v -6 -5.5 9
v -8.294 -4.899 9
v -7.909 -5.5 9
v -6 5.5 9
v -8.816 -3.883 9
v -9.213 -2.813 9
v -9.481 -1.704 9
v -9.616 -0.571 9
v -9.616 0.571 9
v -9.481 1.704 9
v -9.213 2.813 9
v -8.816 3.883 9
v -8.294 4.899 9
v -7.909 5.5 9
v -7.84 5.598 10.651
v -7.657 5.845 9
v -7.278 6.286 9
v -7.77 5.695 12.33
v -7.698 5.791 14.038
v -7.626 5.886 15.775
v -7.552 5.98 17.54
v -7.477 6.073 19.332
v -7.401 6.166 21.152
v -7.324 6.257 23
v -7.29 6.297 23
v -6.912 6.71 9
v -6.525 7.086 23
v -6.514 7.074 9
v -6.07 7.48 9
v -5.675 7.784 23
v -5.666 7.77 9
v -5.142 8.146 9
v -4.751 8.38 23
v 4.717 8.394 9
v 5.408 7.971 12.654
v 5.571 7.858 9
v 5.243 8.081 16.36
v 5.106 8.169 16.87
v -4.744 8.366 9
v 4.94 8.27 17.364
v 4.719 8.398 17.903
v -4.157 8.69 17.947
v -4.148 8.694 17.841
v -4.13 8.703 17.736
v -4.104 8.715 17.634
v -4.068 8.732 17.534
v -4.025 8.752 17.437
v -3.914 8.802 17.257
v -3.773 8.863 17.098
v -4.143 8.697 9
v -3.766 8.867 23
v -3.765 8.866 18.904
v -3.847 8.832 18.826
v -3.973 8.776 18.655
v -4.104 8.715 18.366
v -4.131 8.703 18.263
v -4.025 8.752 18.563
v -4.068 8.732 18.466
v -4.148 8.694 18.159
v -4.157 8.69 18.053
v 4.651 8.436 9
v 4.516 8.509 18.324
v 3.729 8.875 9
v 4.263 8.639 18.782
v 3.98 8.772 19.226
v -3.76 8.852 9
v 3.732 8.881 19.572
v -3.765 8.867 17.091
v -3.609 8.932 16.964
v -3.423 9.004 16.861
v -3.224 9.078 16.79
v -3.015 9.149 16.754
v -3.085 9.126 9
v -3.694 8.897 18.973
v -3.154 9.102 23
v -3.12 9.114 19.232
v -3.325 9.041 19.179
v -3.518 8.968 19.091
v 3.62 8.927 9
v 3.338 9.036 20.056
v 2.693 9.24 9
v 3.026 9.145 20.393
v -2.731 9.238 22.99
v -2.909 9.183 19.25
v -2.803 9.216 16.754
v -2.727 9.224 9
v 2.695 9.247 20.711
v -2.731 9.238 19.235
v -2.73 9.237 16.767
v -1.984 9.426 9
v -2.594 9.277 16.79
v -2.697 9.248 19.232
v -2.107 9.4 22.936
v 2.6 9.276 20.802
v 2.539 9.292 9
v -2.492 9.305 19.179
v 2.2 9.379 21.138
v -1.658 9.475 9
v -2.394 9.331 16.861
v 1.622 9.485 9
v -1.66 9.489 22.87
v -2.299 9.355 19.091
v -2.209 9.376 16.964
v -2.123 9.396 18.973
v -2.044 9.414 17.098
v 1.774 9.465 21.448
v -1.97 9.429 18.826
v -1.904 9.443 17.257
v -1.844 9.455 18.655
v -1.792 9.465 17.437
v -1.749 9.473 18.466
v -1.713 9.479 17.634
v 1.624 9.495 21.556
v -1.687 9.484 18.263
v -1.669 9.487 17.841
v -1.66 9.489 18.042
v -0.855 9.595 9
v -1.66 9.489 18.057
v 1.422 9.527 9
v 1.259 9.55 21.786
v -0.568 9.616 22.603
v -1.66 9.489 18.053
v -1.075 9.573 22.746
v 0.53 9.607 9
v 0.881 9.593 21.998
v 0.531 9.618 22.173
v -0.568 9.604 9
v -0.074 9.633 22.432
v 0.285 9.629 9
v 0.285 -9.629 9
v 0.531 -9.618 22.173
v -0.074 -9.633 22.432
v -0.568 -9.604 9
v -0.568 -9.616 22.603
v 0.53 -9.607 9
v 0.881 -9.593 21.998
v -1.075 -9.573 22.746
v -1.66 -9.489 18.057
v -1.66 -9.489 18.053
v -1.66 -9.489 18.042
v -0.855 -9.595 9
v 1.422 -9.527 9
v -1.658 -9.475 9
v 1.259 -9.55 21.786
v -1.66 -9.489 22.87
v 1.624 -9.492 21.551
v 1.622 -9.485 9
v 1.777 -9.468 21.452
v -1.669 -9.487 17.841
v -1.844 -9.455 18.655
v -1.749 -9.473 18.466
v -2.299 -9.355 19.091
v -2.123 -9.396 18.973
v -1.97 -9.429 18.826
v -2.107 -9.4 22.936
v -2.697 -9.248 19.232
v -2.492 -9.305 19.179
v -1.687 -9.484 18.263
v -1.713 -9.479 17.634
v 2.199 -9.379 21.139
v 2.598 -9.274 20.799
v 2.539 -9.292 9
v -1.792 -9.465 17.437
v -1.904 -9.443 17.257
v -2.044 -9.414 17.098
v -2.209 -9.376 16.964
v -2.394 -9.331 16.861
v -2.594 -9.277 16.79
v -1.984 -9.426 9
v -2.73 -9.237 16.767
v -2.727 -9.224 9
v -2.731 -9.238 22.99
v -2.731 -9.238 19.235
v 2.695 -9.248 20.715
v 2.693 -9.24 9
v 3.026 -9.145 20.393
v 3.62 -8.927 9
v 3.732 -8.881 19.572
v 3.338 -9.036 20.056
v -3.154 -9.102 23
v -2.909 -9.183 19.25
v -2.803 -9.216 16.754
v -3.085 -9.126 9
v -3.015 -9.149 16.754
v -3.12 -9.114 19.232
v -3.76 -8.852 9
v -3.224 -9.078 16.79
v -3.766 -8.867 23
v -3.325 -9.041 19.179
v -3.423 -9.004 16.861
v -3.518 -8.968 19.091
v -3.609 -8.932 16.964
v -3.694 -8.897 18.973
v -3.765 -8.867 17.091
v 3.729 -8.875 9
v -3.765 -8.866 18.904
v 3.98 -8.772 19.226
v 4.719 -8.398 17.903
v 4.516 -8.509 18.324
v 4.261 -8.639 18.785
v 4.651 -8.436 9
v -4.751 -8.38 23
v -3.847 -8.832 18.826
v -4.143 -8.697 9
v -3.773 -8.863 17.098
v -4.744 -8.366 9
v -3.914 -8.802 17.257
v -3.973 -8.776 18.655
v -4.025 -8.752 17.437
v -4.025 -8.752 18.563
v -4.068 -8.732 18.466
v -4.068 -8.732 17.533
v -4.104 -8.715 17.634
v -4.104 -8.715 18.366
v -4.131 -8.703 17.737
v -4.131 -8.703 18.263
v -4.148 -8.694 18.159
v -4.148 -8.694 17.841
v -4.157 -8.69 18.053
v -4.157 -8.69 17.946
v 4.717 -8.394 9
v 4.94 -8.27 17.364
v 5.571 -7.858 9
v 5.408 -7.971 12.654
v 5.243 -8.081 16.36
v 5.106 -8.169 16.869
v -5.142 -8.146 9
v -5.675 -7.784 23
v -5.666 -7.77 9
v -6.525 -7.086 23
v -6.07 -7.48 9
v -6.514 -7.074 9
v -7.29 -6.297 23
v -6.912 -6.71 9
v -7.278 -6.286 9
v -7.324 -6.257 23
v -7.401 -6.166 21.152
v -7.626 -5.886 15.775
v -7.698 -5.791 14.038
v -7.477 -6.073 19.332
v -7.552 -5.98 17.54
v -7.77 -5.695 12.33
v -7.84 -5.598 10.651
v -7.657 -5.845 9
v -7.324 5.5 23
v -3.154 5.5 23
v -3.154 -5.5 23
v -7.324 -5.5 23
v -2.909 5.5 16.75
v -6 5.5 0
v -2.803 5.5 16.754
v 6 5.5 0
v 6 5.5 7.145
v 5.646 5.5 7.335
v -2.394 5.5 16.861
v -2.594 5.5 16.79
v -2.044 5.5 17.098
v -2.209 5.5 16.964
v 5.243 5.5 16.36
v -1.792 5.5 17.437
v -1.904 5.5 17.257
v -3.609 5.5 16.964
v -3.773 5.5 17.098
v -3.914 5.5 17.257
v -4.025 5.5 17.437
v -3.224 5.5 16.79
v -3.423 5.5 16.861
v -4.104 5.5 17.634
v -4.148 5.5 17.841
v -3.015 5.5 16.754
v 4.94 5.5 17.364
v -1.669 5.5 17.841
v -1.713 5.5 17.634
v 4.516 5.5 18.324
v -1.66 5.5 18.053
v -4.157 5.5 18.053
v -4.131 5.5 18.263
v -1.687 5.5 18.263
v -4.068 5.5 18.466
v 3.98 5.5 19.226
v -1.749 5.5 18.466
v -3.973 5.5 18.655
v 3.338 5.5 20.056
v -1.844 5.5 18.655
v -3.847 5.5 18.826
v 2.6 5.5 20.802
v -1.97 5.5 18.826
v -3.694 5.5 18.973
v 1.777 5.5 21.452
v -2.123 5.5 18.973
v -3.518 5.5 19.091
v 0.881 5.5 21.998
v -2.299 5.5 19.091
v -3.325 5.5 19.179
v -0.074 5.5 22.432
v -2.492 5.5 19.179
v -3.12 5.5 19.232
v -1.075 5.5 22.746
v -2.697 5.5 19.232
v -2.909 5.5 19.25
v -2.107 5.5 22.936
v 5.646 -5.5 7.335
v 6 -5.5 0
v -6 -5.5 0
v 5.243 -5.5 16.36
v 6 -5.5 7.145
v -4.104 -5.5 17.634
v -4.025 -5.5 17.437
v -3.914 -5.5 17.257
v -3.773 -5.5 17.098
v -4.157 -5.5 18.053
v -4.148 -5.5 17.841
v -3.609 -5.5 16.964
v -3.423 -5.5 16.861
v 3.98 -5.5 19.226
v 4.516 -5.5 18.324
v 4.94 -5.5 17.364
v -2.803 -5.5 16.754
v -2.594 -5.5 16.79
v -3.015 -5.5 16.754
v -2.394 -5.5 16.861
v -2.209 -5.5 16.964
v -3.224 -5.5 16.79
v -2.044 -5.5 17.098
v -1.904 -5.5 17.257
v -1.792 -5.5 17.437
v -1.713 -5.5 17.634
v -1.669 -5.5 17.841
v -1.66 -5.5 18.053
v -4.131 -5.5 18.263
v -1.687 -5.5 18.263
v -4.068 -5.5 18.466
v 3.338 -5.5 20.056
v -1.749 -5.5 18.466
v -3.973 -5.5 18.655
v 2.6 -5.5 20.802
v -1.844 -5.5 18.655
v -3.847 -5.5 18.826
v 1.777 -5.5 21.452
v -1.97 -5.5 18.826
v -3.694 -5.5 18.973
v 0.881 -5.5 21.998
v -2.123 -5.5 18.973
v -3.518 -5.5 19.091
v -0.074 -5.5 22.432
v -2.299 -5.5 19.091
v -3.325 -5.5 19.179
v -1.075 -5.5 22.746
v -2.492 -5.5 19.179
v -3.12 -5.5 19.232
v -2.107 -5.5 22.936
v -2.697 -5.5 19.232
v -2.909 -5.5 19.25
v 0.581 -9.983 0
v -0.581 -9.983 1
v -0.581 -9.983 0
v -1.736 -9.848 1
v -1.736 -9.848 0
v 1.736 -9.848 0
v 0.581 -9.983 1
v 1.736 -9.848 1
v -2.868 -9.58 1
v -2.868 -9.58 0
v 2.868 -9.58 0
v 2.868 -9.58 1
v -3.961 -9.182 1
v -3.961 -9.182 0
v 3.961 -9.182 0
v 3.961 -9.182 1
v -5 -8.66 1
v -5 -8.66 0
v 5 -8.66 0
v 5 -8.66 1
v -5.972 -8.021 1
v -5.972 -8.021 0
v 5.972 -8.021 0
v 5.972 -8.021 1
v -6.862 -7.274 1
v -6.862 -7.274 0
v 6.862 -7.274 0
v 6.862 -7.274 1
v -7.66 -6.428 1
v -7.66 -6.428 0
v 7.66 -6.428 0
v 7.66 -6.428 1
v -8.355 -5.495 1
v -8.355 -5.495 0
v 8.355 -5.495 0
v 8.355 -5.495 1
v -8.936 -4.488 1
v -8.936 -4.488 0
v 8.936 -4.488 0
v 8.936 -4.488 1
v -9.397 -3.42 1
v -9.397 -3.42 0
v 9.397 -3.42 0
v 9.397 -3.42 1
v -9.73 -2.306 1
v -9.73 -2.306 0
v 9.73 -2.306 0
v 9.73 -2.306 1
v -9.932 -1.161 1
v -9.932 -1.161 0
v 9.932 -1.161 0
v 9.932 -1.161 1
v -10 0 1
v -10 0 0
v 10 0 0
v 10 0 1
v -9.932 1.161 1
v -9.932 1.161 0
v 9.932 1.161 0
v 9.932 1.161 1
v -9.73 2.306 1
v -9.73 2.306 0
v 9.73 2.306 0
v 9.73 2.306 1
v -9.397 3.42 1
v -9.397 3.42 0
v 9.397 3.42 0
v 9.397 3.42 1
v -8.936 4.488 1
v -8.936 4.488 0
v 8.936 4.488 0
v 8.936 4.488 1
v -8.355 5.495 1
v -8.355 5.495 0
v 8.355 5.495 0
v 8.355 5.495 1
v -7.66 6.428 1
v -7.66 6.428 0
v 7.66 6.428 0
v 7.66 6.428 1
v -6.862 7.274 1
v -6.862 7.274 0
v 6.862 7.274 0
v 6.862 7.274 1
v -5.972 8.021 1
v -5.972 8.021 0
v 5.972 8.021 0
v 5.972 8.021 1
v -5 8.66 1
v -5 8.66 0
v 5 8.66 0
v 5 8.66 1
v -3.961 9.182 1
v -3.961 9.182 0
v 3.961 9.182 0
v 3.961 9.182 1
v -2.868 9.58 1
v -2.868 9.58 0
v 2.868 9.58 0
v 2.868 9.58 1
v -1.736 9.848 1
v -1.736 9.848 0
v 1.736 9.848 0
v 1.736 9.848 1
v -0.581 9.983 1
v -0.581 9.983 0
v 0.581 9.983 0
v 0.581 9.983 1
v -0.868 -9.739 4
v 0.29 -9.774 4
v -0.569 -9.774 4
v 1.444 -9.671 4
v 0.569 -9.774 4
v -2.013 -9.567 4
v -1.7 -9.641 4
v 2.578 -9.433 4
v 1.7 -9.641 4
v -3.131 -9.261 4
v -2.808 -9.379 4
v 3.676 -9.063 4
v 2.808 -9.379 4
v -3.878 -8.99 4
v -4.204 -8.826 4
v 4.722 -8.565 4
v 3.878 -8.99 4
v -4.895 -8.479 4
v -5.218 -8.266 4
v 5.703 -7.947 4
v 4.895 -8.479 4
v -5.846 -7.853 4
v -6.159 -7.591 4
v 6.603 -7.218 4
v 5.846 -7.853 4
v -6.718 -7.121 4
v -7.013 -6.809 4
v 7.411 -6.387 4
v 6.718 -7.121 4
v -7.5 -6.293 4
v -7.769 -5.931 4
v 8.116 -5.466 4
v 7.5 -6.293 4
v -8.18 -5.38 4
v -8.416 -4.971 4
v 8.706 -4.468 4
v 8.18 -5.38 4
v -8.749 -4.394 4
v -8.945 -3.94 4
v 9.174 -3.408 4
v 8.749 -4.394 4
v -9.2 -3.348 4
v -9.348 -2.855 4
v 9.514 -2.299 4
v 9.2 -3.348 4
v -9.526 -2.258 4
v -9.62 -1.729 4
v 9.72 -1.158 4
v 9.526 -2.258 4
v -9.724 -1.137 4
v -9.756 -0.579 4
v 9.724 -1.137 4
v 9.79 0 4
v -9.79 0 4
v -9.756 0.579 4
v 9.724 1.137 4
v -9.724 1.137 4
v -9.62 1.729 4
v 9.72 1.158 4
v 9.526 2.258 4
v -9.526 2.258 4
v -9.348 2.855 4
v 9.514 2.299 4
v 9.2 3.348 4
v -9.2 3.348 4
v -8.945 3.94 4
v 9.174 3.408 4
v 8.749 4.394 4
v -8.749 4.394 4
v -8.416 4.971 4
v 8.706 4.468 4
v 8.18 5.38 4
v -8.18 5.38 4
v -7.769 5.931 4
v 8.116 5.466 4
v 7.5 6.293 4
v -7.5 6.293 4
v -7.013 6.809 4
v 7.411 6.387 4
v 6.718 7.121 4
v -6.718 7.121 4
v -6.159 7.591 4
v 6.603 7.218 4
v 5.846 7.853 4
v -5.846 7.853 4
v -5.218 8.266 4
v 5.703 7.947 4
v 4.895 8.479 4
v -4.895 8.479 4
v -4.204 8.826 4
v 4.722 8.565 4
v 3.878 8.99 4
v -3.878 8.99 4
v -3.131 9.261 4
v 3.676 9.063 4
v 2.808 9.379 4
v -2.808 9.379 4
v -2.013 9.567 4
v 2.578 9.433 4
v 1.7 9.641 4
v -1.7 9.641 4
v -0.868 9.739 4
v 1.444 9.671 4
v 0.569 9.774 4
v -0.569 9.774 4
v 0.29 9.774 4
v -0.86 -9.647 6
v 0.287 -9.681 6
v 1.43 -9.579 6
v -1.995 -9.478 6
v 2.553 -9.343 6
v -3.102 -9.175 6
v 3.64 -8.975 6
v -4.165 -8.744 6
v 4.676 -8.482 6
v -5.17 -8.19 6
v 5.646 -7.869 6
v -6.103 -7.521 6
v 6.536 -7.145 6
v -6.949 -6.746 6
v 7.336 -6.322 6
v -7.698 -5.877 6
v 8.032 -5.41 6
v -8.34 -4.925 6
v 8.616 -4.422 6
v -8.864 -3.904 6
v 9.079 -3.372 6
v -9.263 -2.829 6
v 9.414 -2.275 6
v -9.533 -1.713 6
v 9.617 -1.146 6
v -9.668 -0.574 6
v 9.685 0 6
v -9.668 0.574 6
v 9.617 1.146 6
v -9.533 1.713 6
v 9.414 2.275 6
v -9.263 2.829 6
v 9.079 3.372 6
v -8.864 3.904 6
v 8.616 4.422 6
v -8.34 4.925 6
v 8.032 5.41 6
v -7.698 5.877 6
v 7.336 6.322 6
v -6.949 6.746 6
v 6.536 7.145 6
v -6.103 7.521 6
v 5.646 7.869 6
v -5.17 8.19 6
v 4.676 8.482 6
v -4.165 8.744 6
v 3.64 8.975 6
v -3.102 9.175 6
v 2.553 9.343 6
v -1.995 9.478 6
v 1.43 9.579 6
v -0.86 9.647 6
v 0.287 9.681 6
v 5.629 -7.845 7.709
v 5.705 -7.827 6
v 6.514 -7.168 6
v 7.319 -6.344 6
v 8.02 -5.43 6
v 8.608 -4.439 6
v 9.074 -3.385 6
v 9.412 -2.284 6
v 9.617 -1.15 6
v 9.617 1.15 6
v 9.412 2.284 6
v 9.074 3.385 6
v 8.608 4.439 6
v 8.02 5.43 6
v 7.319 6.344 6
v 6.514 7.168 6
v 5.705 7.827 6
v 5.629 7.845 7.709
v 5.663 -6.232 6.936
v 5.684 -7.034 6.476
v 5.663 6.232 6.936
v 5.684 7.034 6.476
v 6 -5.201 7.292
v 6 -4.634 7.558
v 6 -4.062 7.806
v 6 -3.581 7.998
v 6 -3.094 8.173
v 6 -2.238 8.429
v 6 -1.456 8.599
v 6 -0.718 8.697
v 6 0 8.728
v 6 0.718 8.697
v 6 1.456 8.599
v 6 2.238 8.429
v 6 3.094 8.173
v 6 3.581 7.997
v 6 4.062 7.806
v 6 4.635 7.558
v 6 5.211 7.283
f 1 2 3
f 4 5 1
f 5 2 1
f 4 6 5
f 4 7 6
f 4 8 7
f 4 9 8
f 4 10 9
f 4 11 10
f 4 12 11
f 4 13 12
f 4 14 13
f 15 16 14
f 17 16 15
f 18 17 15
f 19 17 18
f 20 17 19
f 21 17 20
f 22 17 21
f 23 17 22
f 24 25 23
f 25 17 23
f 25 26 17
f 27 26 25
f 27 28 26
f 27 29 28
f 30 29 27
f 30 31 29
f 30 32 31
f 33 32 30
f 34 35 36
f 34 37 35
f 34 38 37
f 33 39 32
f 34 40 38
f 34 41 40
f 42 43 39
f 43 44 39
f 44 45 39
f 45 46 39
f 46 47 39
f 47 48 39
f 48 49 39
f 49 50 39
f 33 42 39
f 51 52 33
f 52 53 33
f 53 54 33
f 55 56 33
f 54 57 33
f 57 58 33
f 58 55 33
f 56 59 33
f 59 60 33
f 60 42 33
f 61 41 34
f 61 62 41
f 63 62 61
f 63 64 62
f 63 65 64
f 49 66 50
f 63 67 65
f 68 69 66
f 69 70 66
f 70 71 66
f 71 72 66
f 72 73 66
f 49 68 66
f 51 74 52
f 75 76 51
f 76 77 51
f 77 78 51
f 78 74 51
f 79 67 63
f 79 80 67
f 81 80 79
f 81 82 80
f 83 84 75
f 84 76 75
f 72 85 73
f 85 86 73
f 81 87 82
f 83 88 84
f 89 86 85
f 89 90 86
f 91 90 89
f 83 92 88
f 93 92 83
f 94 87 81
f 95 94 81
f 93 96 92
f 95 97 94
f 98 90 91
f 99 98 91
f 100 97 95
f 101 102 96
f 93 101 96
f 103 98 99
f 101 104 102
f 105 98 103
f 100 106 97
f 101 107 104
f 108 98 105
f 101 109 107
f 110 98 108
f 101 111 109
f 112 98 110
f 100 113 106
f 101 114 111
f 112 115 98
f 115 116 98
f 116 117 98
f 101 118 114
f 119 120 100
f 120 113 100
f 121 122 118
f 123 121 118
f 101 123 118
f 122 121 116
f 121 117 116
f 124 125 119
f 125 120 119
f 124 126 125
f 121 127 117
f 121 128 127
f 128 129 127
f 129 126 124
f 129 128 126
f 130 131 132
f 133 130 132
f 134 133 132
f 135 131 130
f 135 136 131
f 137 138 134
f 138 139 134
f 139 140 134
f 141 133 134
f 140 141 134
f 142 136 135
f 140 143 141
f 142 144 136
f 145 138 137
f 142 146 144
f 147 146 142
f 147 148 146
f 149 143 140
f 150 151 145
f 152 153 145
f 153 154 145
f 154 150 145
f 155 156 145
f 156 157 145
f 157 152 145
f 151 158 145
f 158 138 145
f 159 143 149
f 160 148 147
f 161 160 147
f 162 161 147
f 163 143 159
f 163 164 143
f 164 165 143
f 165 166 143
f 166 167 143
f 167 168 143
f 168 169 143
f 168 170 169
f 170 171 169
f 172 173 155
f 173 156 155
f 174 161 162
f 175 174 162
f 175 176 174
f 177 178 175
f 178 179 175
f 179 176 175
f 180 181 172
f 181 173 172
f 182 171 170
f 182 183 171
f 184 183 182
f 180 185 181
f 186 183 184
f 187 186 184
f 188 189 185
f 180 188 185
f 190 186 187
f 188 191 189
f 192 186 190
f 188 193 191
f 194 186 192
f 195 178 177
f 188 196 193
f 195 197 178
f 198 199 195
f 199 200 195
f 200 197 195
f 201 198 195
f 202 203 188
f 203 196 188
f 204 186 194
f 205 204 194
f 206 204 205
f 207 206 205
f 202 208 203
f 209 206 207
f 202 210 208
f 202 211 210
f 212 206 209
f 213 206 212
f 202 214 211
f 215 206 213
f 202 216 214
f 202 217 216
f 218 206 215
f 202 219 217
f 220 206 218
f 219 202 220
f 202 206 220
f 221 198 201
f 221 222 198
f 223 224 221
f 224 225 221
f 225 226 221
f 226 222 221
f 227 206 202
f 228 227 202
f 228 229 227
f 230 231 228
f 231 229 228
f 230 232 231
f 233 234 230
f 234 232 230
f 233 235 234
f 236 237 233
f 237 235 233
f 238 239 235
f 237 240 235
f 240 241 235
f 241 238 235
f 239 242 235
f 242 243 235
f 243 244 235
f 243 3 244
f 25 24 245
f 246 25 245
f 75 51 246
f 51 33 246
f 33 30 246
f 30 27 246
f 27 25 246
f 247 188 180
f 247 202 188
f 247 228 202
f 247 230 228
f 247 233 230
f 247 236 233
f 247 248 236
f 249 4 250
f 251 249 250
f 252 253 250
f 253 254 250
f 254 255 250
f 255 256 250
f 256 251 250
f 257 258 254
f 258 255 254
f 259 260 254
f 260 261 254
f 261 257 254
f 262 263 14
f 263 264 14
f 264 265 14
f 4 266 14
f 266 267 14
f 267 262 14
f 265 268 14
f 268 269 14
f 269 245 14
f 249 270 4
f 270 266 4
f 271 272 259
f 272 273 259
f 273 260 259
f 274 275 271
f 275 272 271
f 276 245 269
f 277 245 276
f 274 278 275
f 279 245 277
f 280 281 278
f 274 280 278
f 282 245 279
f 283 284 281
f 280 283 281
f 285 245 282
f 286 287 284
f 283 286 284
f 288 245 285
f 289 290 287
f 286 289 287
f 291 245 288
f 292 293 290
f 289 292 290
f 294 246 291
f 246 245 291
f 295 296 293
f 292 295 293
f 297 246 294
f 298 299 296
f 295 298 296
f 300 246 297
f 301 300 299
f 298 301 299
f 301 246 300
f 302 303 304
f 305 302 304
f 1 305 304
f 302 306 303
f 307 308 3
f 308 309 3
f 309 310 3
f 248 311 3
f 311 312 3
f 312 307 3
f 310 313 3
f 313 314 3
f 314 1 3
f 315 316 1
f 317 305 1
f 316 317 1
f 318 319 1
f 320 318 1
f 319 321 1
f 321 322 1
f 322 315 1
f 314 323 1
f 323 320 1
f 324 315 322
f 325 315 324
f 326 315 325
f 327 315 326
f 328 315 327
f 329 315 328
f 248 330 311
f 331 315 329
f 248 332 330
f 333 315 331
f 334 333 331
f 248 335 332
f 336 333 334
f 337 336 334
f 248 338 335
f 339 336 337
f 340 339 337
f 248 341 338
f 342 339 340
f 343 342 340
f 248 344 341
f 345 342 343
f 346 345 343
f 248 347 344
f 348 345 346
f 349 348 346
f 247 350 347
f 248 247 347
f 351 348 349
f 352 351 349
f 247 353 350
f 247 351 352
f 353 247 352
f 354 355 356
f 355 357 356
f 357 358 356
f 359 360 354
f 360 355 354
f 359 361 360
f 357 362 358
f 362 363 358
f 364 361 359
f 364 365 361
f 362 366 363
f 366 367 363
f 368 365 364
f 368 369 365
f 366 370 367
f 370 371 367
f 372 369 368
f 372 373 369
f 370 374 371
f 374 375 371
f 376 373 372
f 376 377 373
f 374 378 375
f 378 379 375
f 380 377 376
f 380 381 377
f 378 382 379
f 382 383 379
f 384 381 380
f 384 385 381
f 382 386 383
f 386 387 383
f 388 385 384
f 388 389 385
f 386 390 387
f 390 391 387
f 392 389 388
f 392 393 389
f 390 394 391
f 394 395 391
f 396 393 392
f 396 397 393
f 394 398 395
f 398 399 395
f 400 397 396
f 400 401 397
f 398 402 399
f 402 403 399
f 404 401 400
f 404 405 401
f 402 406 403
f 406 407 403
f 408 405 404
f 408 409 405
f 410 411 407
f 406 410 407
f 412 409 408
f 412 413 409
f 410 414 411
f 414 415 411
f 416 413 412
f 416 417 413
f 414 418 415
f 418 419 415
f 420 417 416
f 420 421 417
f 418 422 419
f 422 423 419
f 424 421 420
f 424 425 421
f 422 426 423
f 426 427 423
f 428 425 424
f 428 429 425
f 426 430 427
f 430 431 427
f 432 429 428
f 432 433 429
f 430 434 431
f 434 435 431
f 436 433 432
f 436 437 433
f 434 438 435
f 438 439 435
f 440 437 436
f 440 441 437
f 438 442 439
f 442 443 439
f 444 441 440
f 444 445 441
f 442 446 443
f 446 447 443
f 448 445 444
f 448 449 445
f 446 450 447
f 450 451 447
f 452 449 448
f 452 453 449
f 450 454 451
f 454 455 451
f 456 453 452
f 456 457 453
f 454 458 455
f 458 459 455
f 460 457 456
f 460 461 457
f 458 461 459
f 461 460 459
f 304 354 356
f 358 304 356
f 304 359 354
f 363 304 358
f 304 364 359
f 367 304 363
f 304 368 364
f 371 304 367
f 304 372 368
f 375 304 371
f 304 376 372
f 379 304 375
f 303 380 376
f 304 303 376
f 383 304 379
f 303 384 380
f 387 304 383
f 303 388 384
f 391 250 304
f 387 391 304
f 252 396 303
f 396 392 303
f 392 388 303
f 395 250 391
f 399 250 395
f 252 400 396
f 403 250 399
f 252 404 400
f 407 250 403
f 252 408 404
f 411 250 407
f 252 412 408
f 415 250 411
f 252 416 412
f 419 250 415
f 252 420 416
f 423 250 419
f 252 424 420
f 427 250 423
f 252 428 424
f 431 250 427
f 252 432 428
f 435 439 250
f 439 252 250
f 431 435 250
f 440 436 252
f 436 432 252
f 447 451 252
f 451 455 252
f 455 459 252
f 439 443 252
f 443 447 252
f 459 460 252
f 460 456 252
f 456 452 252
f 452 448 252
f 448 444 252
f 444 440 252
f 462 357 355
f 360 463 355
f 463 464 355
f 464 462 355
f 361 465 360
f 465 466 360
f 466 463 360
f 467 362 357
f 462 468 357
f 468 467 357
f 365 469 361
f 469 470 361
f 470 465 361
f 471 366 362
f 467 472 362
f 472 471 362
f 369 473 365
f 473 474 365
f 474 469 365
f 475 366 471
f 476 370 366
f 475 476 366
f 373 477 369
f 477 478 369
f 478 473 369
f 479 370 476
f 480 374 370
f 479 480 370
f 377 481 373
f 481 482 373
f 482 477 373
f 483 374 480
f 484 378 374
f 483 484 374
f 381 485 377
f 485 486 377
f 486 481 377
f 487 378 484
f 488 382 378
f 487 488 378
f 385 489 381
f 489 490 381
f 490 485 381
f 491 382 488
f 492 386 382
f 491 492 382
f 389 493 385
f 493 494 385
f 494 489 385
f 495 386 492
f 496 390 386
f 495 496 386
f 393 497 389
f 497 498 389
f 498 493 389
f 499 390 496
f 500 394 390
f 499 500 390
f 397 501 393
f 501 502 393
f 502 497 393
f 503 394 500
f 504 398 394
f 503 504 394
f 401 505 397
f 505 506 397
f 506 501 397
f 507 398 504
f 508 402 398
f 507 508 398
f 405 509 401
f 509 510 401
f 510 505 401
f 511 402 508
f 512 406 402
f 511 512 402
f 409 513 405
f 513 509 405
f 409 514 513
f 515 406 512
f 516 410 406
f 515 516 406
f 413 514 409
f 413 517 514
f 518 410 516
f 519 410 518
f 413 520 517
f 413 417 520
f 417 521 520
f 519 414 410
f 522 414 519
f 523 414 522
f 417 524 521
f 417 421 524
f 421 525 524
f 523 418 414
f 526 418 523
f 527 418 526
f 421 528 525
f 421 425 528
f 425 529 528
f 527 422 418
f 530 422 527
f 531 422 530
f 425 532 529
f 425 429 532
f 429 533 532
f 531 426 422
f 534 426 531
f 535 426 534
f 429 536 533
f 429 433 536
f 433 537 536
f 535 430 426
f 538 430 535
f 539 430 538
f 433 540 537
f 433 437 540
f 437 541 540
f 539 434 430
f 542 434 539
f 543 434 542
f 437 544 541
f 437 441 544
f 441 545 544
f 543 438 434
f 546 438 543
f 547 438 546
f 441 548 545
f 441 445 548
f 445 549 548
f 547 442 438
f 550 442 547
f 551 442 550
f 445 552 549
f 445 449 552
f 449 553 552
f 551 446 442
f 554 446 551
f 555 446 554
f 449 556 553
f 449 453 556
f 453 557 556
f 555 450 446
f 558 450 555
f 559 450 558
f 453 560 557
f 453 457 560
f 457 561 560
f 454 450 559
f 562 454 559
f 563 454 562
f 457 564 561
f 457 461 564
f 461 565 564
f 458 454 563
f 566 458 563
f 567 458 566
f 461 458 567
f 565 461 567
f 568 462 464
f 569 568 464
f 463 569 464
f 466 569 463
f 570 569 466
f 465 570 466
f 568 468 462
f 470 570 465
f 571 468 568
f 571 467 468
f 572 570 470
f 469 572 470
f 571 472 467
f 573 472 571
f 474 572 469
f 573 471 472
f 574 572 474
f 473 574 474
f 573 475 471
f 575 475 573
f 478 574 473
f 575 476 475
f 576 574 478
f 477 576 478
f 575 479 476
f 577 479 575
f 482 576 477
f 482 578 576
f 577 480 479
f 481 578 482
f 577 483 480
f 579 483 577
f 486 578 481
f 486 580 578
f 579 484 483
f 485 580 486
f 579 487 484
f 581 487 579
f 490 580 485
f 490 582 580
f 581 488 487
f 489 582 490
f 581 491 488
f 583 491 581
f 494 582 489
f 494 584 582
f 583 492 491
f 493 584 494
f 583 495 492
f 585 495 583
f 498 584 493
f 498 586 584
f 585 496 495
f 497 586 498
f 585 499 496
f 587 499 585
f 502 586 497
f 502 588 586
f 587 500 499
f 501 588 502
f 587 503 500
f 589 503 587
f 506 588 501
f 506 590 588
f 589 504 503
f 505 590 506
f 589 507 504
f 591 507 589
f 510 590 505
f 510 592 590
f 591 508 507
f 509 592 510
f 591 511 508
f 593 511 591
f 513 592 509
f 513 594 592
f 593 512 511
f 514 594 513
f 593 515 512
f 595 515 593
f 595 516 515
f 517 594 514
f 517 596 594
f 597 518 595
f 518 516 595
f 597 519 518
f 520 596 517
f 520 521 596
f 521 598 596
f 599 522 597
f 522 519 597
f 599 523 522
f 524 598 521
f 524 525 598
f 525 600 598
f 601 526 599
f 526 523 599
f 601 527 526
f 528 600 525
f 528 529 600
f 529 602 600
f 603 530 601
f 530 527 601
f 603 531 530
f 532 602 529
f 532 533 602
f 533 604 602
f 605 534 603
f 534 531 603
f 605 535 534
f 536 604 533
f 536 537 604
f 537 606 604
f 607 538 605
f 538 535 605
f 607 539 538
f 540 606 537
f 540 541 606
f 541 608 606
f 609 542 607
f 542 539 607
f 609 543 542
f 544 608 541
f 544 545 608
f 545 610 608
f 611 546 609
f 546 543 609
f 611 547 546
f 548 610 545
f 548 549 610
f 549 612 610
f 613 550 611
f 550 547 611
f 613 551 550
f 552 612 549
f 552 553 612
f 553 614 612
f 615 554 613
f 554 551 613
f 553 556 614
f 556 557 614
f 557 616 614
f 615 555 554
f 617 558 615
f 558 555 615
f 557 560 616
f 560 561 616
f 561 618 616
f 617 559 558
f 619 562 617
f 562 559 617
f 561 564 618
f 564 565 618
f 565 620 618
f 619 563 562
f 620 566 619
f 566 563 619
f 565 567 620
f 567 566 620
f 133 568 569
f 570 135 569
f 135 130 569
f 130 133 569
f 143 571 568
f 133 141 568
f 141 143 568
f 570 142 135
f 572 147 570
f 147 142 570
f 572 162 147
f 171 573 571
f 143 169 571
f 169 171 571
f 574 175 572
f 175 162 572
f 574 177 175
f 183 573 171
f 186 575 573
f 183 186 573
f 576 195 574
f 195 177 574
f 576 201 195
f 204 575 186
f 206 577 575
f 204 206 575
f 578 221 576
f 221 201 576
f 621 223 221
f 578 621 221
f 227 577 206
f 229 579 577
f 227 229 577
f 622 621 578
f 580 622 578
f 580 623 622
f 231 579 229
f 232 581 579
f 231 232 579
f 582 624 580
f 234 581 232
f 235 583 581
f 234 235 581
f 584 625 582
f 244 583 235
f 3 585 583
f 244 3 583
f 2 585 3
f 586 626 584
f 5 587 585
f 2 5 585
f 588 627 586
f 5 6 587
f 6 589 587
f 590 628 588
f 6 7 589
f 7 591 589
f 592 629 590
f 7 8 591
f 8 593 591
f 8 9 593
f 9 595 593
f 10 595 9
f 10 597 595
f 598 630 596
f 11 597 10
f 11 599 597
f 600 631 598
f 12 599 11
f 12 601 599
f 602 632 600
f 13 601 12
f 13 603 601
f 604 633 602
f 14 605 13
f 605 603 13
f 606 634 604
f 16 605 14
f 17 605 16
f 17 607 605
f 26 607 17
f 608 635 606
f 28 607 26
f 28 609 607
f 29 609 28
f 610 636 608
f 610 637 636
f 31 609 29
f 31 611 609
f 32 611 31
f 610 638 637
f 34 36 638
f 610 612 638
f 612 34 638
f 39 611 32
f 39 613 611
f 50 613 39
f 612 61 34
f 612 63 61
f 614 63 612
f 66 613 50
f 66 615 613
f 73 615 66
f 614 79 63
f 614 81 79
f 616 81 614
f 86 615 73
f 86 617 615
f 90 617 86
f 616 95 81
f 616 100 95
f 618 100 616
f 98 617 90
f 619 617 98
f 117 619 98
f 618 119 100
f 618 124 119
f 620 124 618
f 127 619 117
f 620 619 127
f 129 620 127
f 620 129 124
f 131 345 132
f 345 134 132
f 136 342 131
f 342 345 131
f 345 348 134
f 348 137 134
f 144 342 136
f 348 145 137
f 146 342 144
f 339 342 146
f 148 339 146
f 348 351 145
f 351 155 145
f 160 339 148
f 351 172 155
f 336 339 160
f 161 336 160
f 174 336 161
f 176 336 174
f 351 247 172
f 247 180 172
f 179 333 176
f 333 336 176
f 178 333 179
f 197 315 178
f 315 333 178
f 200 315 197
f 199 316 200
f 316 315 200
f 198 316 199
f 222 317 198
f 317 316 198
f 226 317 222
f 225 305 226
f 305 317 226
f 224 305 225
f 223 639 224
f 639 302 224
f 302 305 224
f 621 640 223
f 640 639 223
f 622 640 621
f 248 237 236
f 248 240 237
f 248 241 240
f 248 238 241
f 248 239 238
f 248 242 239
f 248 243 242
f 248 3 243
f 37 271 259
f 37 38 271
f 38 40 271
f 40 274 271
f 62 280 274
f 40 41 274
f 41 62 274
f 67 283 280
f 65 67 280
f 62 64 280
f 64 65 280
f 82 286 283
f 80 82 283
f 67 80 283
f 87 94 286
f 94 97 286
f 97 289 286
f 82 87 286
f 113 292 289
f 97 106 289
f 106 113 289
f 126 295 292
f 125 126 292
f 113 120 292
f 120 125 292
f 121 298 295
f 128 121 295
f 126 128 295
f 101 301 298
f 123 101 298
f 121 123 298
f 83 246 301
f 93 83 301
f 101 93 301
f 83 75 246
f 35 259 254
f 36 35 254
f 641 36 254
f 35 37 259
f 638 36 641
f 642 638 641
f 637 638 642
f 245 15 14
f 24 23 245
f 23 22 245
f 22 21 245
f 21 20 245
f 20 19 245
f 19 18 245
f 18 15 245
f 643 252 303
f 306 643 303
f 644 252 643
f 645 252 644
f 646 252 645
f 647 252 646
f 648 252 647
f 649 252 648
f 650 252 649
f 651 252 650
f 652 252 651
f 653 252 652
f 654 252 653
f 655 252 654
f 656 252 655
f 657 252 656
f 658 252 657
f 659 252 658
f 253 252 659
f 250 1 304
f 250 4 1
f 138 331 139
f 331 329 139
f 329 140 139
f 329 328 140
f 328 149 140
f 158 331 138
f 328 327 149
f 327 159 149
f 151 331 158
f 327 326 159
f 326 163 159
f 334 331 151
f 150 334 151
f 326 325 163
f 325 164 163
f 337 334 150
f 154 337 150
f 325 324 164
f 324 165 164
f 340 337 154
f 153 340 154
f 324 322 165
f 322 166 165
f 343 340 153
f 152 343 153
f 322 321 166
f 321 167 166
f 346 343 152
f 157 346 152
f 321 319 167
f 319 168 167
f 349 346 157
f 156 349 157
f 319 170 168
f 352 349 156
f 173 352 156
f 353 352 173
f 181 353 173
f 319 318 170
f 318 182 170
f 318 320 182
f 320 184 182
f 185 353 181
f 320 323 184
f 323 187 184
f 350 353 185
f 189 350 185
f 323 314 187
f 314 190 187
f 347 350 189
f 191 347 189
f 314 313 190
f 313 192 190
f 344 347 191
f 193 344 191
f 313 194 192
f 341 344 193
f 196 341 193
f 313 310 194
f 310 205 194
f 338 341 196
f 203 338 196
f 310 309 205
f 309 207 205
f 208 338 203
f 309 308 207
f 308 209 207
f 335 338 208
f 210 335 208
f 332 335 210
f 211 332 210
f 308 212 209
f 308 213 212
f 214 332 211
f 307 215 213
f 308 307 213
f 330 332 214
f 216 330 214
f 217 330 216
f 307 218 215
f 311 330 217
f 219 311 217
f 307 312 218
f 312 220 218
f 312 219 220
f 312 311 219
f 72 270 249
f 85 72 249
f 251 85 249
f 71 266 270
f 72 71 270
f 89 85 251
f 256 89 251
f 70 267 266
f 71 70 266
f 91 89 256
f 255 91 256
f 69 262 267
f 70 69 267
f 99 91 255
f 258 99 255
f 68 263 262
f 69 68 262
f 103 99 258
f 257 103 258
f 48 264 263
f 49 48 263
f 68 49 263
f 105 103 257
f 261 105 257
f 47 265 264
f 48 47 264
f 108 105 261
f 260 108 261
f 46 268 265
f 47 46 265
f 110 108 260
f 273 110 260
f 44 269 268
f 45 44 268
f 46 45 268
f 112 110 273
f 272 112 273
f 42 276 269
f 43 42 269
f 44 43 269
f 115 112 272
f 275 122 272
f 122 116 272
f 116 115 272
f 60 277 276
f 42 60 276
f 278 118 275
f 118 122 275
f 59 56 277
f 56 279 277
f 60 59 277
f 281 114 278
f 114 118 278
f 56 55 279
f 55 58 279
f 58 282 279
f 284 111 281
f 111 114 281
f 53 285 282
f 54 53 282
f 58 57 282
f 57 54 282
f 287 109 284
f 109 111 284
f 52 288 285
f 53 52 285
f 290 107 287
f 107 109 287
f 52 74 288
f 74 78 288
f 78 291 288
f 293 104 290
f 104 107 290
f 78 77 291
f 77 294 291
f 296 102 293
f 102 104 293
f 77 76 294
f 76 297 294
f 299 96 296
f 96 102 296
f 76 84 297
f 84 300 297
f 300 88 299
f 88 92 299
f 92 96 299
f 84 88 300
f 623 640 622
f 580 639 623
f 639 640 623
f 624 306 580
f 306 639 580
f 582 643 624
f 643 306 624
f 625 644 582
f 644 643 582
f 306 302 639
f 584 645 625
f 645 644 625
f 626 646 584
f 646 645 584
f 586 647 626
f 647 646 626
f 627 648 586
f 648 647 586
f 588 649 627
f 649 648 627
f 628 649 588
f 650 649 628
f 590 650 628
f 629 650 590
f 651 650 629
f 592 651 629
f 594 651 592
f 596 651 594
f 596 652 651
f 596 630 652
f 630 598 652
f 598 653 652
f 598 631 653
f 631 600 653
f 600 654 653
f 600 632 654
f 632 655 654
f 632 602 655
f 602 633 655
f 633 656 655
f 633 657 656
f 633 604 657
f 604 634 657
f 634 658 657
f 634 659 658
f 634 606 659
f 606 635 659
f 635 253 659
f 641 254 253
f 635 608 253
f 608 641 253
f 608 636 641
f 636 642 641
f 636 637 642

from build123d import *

# Parameters (mm, degrees)
SKETCH1_R               = 10
BOSS_EXTRUDE1_DEPTH     = 1
SKETCH2_R               = 10
BOSS_EXTRUDE2_DEPTH     = 3
BOSS_EXTRUDE2_TAPER     = 4
SKETCH3_R               = 9.790219564
BOSS_EXTRUDE3_DEPTH     = 2
BOSS_EXTRUDE3_TAPER     = 3
SKETCH4_R               = 9.685404006
BOSS_EXTRUDE4_DEPTH     = 3
BOSS_EXTRUDE4_TAPER     = 1
SKETCH5_R               = 9.633038811
BOSS_EXTRUDE5_DEPTH     = 14
CUT_EXTRUDE1_DEPTH      = 13
CUT_EXTRUDE1_DEPTH_BACK = 13
SKETCH6_W               = 17.15
SKETCH6_H               = 11
CUT_EXTRUDE2_DEPTH      = 13
CUT_EXTRUDE2_DEPTH_BACK = 13
SKETCH8_W               = 12
SKETCH8_H               = 11
CUT_EXTRUDE3_DEPTH      = 13
SKETCH9_R               = 1.25
CUT_EXTRUDE4_DEPTH      = 11
CHAMFER1_SIZE           = 4
CHAMFER1_SIZE_2         = 3


with BuildPart() as part:
    # Sketch1 → Boss-Extrude1 (new body)
    with BuildSketch(Plane.XY):
        Circle(SKETCH1_R)
    extrude(amount=BOSS_EXTRUDE1_DEPTH)

    # Sketch2 → Boss-Extrude2 (add)
    with BuildSketch(Plane.XY.offset(1)):
        Circle(SKETCH2_R)
    extrude(amount=BOSS_EXTRUDE2_DEPTH, taper=BOSS_EXTRUDE2_TAPER)

    # Sketch3 → Boss-Extrude3 (add)
    with BuildSketch(Plane.XY.offset(4)):
        Circle(SKETCH3_R)
    extrude(amount=BOSS_EXTRUDE3_DEPTH, taper=BOSS_EXTRUDE3_TAPER)

    # Sketch4 → Boss-Extrude4 (add)
    with BuildSketch(Plane.XY.offset(6)):
        Circle(SKETCH4_R)
    extrude(amount=BOSS_EXTRUDE4_DEPTH, taper=BOSS_EXTRUDE4_TAPER)

    # Sketch5 → Boss-Extrude5 (add)
    with BuildSketch(Plane.XY.offset(9)):
        Circle(SKETCH5_R)
    extrude(amount=BOSS_EXTRUDE5_DEPTH)

    # Sketch6 → Cut-Extrude1 (cut, two sides: drawn at the far end of the back side and taken through both)
    with BuildSketch(Plane(origin=(0, 0, 0), x_dir=(0, 0, -1), z_dir=(1, 0, 0)).offset(-CUT_EXTRUDE1_DEPTH_BACK)):
        with Locations((-17.575, 0)):
            Rectangle(SKETCH6_W, SKETCH6_H)
    extrude(amount=CUT_EXTRUDE1_DEPTH + CUT_EXTRUDE1_DEPTH_BACK, mode=Mode.SUBTRACT)

    # Sketch7 → Cut-Extrude2 (cut, two sides: drawn at the far end of the back side and taken through both)
    with BuildSketch(Plane(origin=(0, 0, 0), x_dir=(1, 0, 0), z_dir=(0, 1, 0)).offset(-CUT_EXTRUDE2_DEPTH_BACK)):
        with BuildLine():
            Line((-7.9085673, -9), (-9.6485673, -9))
            Line((-9.6485673, -9), (-9.6485673, -28.451581468))
            Line((-9.6485673, -28.451581468), (9.633038811, -28.451581468))
            Line((9.633038811, -28.451581468), (9.633038811, -9))
            Line((9.633038811, -9), (5.5714327, -9))
            Line((5.5714327, -9), (5.243186995, -16.36))
            ThreePointArc((5.243186995, -16.36), (2.198477753, -21.139438677), (-3.154241182, -23))
            Line((-3.154241182, -23), (-7.324241182, -23))
            Line((-7.324241182, -23), (-7.9085673, -9))
        make_face()
    extrude(amount=CUT_EXTRUDE2_DEPTH + CUT_EXTRUDE2_DEPTH_BACK, mode=Mode.SUBTRACT)

    # Sketch8 → Cut-Extrude3 (cut)
    with BuildSketch(Plane(origin=(0, 0, 0), x_dir=(-1, 0, 0), z_dir=(0, 0, -1))):
        Rectangle(SKETCH8_W, SKETCH8_H)
    extrude(amount=-CUT_EXTRUDE3_DEPTH, mode=Mode.SUBTRACT)

    # Sketch9 → Cut-Extrude4 (cut, symmetric)
    with BuildSketch(Plane(origin=(0, 0, 0), x_dir=(1, 0, 0), z_dir=(0, 1, 0))):
        with Locations(Location((-2.9085673, -18, 0), (0, 0, 270))):
            Circle(SKETCH9_R)
    extrude(amount=CUT_EXTRUDE4_DEPTH, both=True, mode=Mode.SUBTRACT)

    # Chamfer1
    # the kernel refuses this chamfer: 4, 3 mm, written as the material it takes off along each edge
    with BuildSketch(Plane(origin=(0, 0, 9), x_dir=(-0.4396306058143097, 0.8981786740016393, 0), z_dir=(-0.8981786740016393, -0.4396306058143097, 0))) as chamfer1_piece_1_section:
        Polygon((9.633038811 - CHAMFER1_SIZE, 0), (9.633038811 + CHAMFER1_SIZE_2 * 0.0174524064373, CHAMFER1_SIZE_2 * 0.999847695156), (9.633038811, 0), align=None)
    chamfer1_piece_1 = revolve(axis=Axis((0, 0, 9), (0, 0, -1)), revolution_arc=116.080314714, mode=Mode.PRIVATE)
    chamfer1_piece_1 = split(chamfer1_piece_1, bisect_by=Plane(origin=(5.560372923, 0, 9.247984855), z_dir=(0.9990069635270564, 0, 0.04455431319693658)), keep=Keep.TOP, mode=Mode.PRIVATE)
    add(chamfer1_piece_1, mode=Mode.SUBTRACT)
    with BuildSketch(Plane(origin=(0, 0, 9), x_dir=(1, 0, 0), z_dir=(0, 1, 0))) as chamfer1_piece_2_section:
        Polygon((9.633038811 - CHAMFER1_SIZE, 0), (9.633038811 + CHAMFER1_SIZE_2 * 0.0174524064373, CHAMFER1_SIZE_2 * 0.999847695156), (9.633038811, 0), align=None)
    chamfer1_piece_2 = revolve(axis=Axis((0, 0, 9), (0, 0, -1)), revolution_arc=116.080314714, mode=Mode.PRIVATE)
    chamfer1_piece_2 = split(chamfer1_piece_2, bisect_by=Plane(origin=(5.560372923, 0, 9.247984855), z_dir=(0.9990069635270564, 0, 0.04455431319693658)), keep=Keep.TOP, mode=Mode.PRIVATE)
    add(chamfer1_piece_2, mode=Mode.SUBTRACT)


solid = part.part
